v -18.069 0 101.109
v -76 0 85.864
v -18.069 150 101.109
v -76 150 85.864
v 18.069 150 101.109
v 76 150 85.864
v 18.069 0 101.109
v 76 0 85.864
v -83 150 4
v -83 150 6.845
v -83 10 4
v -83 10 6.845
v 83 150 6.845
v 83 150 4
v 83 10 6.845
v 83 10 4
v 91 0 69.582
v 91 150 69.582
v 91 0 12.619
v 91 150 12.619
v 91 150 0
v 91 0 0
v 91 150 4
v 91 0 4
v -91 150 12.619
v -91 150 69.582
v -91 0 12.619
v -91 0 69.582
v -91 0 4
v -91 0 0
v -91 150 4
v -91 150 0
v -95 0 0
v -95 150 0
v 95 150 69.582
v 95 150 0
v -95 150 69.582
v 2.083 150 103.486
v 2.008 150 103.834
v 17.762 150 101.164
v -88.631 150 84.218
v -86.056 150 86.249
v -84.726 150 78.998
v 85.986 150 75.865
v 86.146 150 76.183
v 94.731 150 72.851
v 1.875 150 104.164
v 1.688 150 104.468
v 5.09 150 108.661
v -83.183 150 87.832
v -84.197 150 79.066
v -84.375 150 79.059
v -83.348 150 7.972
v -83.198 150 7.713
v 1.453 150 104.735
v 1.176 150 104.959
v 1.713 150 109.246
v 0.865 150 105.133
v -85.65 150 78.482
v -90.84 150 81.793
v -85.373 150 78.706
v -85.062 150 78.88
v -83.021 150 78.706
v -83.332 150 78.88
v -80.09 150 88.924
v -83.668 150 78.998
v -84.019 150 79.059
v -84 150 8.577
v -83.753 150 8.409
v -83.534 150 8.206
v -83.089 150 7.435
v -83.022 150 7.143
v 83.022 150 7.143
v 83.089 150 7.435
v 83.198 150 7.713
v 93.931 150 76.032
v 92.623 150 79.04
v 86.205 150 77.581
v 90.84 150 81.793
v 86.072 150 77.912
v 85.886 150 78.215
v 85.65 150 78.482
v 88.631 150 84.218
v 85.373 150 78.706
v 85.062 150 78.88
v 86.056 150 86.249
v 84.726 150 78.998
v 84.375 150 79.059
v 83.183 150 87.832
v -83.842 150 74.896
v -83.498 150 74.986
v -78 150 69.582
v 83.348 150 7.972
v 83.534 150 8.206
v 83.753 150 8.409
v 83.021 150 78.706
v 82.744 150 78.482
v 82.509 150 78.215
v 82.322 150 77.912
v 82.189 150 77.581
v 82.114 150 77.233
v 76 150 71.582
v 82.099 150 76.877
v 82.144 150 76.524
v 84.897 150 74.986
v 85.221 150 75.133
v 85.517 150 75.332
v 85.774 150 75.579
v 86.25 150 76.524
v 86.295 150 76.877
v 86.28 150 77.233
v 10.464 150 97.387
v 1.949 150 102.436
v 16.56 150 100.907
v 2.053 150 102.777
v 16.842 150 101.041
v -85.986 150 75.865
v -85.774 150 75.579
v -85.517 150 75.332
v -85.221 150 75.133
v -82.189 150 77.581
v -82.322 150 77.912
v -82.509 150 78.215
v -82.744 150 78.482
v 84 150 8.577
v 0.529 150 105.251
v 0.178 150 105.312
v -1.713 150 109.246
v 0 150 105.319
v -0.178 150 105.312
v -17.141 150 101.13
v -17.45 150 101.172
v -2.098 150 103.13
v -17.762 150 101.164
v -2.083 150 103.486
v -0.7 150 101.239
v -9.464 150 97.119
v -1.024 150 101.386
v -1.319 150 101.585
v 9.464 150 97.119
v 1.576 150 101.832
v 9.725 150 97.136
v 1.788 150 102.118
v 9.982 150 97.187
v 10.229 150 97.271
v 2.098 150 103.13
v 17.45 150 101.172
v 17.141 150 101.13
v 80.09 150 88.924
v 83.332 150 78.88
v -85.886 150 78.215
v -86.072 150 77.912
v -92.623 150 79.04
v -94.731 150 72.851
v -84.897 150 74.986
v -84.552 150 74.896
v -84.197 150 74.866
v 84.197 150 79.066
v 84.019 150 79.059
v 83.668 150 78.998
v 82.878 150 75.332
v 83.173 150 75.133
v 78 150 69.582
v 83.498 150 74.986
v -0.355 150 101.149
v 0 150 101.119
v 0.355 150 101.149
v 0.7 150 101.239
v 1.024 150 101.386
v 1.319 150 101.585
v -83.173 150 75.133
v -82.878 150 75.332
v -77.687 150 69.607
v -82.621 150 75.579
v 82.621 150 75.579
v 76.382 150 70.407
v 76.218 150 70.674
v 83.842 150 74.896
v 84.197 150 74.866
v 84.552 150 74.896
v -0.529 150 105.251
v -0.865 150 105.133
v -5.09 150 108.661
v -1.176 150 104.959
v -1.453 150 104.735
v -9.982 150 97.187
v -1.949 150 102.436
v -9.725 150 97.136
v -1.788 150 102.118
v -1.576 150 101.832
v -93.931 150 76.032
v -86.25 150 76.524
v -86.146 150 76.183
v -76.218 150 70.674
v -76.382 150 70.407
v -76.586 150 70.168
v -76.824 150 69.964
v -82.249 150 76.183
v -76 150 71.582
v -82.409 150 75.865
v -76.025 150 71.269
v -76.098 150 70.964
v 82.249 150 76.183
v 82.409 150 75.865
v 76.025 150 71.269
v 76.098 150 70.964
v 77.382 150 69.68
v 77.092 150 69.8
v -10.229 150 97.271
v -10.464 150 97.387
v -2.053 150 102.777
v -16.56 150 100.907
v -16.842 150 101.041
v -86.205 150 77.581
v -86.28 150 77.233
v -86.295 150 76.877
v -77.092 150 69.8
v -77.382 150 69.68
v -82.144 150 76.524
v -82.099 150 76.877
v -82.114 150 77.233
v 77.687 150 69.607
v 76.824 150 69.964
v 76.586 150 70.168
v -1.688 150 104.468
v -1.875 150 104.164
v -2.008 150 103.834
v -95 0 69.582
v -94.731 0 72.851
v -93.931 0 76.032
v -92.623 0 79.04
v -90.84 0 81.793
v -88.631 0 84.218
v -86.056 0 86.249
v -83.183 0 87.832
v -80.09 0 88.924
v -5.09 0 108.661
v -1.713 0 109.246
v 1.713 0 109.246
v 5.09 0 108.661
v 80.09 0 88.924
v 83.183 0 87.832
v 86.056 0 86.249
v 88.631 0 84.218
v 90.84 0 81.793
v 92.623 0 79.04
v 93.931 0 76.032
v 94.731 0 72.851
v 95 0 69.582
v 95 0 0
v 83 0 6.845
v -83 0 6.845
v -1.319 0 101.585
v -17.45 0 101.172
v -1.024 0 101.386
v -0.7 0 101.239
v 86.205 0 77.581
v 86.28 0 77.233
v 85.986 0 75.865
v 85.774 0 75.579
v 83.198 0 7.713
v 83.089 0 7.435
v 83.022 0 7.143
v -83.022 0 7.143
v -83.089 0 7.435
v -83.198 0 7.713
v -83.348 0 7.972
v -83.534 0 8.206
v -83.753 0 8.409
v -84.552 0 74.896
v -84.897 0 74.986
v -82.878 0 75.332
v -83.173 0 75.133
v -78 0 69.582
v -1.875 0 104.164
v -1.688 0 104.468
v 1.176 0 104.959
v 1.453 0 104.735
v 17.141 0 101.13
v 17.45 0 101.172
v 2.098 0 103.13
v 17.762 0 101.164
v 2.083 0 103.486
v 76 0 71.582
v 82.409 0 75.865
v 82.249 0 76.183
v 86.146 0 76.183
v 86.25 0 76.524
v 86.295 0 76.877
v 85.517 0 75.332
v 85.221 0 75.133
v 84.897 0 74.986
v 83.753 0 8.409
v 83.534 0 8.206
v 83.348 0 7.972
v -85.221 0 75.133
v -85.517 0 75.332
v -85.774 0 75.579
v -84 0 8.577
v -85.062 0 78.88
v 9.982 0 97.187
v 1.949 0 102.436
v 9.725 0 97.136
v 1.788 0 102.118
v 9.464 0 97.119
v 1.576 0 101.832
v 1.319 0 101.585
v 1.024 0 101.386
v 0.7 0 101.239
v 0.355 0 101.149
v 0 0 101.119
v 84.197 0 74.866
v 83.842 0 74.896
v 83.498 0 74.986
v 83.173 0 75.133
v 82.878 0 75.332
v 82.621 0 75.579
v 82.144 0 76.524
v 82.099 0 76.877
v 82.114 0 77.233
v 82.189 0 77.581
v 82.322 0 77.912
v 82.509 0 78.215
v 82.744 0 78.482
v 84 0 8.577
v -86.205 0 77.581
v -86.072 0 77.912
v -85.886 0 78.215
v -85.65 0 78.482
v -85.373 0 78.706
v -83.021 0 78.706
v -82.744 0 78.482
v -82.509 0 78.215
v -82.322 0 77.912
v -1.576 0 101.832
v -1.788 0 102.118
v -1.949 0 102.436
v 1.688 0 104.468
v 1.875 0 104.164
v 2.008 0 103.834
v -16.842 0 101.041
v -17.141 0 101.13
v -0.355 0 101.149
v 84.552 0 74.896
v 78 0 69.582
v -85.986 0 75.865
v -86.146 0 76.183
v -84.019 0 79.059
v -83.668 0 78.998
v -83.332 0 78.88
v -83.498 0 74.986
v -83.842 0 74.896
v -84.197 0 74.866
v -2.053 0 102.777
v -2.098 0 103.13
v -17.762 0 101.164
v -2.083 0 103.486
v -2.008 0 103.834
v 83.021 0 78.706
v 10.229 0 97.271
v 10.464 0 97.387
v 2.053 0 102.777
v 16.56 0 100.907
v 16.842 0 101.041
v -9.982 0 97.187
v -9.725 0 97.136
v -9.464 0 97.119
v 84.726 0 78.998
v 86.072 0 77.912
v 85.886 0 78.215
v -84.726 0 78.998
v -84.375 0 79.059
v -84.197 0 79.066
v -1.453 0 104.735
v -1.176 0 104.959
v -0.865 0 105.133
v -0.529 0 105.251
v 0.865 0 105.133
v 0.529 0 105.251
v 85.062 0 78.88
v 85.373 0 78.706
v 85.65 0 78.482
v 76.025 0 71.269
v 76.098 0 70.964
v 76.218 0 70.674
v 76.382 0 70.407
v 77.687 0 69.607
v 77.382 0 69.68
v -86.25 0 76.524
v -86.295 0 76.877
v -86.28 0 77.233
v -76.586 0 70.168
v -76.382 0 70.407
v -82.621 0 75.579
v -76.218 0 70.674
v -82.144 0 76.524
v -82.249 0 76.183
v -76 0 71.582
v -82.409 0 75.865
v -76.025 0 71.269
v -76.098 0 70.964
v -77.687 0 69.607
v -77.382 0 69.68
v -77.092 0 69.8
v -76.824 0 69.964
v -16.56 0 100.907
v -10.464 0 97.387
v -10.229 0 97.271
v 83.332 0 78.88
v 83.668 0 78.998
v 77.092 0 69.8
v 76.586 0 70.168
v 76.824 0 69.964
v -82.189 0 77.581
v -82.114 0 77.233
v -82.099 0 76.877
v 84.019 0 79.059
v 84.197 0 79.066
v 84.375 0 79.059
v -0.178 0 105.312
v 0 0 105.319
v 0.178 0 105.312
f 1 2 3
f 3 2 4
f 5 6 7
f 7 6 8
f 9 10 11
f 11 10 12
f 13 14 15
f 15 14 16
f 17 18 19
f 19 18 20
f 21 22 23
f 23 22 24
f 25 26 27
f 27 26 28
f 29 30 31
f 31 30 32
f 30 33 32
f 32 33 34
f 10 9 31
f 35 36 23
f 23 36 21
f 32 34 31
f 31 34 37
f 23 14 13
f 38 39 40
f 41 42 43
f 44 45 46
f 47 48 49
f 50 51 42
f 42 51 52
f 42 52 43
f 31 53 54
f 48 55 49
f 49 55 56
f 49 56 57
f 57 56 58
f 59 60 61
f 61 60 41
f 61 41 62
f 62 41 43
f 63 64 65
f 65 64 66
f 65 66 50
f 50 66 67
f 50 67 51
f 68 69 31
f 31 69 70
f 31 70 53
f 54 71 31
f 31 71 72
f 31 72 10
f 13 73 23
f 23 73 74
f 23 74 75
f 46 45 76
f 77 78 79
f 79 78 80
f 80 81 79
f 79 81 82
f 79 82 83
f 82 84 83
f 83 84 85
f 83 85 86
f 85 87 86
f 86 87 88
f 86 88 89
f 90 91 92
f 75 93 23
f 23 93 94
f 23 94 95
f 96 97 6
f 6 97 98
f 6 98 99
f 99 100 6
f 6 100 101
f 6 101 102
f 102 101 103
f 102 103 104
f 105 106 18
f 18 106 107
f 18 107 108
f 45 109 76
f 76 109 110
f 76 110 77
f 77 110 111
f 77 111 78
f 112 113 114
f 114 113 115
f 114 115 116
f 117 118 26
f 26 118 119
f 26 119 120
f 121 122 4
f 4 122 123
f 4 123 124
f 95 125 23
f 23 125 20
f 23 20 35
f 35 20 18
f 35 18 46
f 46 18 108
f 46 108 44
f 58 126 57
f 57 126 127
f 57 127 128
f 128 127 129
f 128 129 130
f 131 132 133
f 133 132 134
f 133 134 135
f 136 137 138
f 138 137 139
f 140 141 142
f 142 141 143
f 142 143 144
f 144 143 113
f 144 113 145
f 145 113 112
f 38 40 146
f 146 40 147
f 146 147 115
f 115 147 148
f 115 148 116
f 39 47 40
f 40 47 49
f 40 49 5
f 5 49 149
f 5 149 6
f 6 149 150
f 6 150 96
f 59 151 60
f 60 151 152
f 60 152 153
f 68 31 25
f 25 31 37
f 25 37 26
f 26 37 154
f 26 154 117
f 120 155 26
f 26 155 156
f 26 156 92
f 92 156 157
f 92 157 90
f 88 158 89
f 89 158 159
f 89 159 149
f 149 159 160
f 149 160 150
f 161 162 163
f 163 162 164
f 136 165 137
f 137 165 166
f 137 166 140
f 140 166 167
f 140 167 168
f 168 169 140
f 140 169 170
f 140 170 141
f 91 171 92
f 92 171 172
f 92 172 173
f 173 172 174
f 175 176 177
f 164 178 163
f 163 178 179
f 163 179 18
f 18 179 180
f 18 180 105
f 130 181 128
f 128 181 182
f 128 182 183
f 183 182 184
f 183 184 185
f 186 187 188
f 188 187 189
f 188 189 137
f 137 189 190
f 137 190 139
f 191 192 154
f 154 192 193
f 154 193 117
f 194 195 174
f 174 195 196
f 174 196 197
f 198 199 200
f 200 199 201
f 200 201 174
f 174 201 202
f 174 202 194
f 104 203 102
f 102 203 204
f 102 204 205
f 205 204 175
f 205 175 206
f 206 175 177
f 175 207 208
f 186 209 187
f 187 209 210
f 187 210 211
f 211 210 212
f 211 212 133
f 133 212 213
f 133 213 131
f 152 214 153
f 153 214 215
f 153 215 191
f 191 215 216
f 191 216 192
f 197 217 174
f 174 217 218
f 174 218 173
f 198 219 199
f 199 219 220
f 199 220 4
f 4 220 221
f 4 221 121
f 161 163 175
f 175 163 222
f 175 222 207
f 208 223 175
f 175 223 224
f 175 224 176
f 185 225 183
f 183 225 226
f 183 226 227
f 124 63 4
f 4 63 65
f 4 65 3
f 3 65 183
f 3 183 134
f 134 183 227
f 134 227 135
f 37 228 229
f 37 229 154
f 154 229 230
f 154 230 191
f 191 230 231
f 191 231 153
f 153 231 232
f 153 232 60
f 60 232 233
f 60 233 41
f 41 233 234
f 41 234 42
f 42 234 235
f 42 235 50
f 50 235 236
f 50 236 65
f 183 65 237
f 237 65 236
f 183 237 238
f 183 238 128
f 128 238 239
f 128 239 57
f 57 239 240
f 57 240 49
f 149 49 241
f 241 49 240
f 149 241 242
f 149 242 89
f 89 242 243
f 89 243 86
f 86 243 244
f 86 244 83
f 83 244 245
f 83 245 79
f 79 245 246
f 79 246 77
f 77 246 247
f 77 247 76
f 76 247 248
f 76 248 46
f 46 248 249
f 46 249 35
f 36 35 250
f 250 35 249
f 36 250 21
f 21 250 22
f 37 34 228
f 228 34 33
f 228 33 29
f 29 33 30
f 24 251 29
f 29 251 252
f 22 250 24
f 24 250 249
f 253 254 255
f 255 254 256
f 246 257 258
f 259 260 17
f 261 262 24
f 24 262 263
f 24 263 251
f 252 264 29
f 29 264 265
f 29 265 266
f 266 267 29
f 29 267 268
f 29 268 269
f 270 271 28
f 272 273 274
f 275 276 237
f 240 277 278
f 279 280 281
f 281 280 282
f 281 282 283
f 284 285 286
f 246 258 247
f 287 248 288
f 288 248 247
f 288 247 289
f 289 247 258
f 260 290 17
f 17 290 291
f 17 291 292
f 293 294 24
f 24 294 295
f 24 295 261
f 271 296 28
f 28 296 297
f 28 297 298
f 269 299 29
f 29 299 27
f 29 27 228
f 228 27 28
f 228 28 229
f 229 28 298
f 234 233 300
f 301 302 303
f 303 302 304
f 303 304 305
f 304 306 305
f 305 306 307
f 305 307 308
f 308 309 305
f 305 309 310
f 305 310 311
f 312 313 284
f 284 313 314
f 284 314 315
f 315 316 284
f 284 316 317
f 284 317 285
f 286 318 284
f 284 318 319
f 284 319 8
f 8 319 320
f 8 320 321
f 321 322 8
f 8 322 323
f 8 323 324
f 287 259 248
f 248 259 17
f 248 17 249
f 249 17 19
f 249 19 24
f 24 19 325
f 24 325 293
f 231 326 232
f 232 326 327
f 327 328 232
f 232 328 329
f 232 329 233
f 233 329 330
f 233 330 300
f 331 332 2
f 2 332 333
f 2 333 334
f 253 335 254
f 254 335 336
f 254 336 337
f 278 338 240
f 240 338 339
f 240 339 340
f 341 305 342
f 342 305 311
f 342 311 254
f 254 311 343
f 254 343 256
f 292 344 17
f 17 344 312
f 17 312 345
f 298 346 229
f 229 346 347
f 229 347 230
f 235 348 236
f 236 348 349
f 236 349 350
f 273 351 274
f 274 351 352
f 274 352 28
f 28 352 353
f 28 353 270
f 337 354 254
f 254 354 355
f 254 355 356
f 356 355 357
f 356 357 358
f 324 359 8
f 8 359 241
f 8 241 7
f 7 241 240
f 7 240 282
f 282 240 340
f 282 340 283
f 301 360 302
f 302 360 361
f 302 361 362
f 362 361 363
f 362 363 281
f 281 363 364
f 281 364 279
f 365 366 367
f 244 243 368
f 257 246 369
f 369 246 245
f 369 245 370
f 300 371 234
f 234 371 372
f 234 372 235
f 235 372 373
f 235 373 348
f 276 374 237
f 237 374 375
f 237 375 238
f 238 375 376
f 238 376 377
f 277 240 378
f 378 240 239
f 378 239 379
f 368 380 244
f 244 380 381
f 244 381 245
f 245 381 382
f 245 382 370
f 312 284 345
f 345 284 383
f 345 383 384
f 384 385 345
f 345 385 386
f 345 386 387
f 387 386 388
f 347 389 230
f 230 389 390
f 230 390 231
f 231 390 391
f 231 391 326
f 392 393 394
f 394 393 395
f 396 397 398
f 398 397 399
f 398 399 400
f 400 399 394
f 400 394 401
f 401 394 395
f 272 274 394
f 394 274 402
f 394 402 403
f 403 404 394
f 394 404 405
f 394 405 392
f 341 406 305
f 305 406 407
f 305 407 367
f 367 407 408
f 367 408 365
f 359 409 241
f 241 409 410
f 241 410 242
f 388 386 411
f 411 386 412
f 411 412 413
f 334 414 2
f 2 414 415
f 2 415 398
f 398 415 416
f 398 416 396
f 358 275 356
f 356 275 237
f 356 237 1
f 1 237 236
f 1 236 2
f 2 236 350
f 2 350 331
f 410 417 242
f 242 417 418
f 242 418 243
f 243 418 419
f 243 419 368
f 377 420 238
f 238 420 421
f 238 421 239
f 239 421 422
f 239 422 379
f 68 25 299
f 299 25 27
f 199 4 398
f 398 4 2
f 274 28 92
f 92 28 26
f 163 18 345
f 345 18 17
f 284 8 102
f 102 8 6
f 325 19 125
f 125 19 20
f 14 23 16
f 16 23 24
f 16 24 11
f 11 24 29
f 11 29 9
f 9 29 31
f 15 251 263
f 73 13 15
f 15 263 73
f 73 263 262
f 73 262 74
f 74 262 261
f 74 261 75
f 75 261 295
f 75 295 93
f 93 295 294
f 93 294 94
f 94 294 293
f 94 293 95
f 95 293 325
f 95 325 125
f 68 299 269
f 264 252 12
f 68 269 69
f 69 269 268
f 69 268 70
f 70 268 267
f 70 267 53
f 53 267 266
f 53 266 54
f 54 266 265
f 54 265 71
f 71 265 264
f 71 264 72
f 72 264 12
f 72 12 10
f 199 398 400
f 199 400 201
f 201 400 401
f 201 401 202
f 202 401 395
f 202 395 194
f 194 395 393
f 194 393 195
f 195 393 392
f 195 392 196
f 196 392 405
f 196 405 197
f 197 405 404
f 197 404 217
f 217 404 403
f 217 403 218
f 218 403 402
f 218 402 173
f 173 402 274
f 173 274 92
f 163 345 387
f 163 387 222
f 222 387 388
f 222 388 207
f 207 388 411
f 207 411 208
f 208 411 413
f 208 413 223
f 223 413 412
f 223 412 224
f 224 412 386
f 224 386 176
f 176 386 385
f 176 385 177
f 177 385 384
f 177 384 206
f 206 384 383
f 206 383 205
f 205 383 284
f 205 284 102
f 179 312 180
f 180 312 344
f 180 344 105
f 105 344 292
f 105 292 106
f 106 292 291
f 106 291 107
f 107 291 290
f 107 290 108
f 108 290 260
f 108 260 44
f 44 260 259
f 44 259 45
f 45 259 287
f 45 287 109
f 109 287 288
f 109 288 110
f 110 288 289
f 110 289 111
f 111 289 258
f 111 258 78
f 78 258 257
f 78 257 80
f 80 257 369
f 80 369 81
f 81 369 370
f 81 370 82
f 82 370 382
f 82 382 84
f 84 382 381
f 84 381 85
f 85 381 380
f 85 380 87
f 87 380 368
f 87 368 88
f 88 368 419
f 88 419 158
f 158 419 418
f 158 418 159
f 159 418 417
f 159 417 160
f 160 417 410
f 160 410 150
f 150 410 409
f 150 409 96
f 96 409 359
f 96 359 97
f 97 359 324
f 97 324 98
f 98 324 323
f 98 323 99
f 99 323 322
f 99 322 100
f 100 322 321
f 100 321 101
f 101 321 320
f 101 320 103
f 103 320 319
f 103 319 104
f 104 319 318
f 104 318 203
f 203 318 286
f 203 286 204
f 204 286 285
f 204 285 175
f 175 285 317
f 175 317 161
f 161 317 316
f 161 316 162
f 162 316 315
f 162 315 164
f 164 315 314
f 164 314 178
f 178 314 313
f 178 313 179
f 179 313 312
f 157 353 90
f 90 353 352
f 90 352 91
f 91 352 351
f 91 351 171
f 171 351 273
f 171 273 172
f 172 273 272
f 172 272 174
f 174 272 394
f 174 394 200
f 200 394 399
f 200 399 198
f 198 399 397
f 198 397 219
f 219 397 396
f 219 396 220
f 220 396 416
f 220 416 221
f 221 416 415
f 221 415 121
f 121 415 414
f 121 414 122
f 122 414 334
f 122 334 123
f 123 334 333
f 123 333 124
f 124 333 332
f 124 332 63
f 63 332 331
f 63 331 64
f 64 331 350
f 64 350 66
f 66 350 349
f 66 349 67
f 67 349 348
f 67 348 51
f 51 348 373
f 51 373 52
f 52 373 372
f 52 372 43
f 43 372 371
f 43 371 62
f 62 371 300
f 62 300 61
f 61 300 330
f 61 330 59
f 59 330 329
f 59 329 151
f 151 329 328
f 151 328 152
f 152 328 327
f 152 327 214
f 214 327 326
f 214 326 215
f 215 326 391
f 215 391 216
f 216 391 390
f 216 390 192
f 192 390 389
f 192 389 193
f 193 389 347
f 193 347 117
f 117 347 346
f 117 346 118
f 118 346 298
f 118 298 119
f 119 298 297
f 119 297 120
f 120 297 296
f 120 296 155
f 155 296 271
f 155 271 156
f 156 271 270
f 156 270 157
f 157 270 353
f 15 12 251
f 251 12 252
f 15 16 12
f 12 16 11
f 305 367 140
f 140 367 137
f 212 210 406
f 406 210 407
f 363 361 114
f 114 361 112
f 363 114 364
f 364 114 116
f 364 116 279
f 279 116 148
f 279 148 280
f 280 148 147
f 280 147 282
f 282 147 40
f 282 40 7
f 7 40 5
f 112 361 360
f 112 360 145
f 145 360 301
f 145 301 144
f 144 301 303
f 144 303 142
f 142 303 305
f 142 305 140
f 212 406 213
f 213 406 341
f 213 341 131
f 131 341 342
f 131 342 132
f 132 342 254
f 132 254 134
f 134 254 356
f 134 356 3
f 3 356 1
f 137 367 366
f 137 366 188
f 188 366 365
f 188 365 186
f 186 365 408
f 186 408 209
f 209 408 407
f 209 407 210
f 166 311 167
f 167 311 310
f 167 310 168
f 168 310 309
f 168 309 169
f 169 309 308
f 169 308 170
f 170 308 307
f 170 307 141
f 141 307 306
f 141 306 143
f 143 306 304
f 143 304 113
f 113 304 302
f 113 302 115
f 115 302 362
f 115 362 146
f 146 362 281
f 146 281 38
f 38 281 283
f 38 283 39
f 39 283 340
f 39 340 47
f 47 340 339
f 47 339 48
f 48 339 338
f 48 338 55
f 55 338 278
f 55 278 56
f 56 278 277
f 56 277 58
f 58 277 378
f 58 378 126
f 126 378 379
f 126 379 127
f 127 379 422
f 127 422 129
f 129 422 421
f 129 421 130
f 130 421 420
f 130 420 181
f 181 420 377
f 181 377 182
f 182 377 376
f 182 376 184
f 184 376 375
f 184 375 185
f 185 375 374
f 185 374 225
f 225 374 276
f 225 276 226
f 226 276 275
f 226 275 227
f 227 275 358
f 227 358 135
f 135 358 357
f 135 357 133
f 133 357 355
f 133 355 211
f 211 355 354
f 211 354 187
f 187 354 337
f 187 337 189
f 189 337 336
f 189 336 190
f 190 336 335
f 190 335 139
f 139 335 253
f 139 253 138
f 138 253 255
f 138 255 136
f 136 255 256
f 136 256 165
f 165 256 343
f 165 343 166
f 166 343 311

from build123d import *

# Parameters (mm, degrees)
BOSS_EXTRUDE1_DEPTH = 150
SHELL2_T            = -4
BOSS_EXTRUDE2_DEPTH = 150
FILLET1_R           = 2
SKETCH4_R           = 2.1
CUT_EXTRUDE1_DEPTH  = 150
SKETCH5_W           = 166
SKETCH5_H           = 2.845299462
BOSS_EXTRUDE3_DEPTH = 10
BOSS_EXTRUDE6_DEPTH = 150
FILLET2_R           = 2
SKETCH7_R           = 2.1
CUT_EXTRUDE3_DEPTH  = 150


with BuildPart() as part:
    # Sketch1 → Boss-Extrude1 (new body)
    with BuildSketch(Plane(origin=(0, 0, 0), x_dir=(1, 0, 0), z_dir=(0, 1, 0))):
        with BuildLine():
            Line((95, 0), (95, -69.582228732))
            ThreePointArc((95, -69.582228732), (90.839780928, -81.792934696), (80.089865986, -88.923719477))
            Line((80.089865986, -88.923719477), (5.089865986, -108.660561583))
            ThreePointArc((5.089865986, -108.660561583), (0, -109.319070837), (-5.089865986, -108.660561583))
            Line((-5.089865986, -108.660561583), (-80.089865986, -88.923719477))
            ThreePointArc((-80.089865986, -88.923719477), (-90.839780928, -81.792934696), (-95, -69.582228732))
            Line((-95, -69.582228732), (-95, 0))
            Line((-95, 0), (95, 0))
        make_face()
    extrude(amount=BOSS_EXTRUDE1_DEPTH)

    # Shell2
    shell2_openings = [part.faces().sort_by_distance(p)[0] for p in [
        (0, 150, 48.84344893),
        (0, 75, 0),
        (0, 0, 48.84344893),
    ]]
    offset(amount=SHELL2_T, openings=shell2_openings, kind=Kind.INTERSECTION)

    # Sketch3 → Boss-Extrude2 (add)
    with BuildSketch(Plane(origin=(0, 0, 0), x_dir=(1, 0, 0), z_dir=(0, 1, 0))):
        Polygon((-91, -4), (-83, -4), (-83, -8), (-91, -12.618802154), align=None)
        Polygon((-91, -69.582228732), (-76, -69.582228732), (-76, -85.863814167), (-80.300337087, -88.867104329), (-90.839780928, -81.792934696), (-95, -69.582228732), align=None)
        Polygon((91, -69.582228732), (76, -69.582228732), (76, -85.863814167), (80.300337087, -88.867104329), (90.839780928, -81.792934696), (95, -69.582228732), align=None)
        Polygon((83, -8), (91, -12.618802154), (91, -4), (83, -4), align=None)
    extrude(amount=BOSS_EXTRUDE2_DEPTH)

    # Fillet1
    fillet1_edges = [part.edges().sort_by_distance(p)[0] for p in [
        (83, 75, 8),
        (76, 75, 69.582228732),
        (-76, 75, 69.582228732),
        (-83, 75, 8),
    ]]
    fillet(fillet1_edges, radius=FILLET1_R)

    # Sketch4 → Cut-Extrude1 (cut)
    with BuildSketch(Plane(origin=(0, 0, 0), x_dir=(1, 0, 0), z_dir=(0, 1, 0))):
        with Locations(Location((84.197294702, -76.966150565, 0), (0, 0, 270))):
            Circle(SKETCH4_R)
        with Locations(Location((-84.197294702, -76.966150565, 0), (0, 0, 270))):
            Circle(SKETCH4_R)
    extrude(amount=CUT_EXTRUDE1_DEPTH, mode=Mode.SUBTRACT)

    # Sketch5 → Boss-Extrude3 (add)
    with BuildSketch(Plane(origin=(0, 0, 0), x_dir=(1, 0, 0), z_dir=(0, 1, 0))):
        with Locations((0, -5.422649731)):
            Rectangle(SKETCH5_W, SKETCH5_H)
    extrude(amount=BOSS_EXTRUDE3_DEPTH)

    # Sketch6 → Boss-Extrude6 (add)
    with BuildSketch(Plane(origin=(0, 0, 0), x_dir=(1, 0, 0), z_dir=(0, 1, 0))):
        Polygon((10, -97.119070837), (17.273176686, -101.318241355), (0, -107.972122026), (-17.273176686, -101.318241355), (-10, -97.119070837), align=None)
    extrude(amount=BOSS_EXTRUDE6_DEPTH)

    # Fillet2
    fillet2_edges = [part.edges().sort_by_distance(p)[0] for p in [
        (10, 75, 97.119070837),
        (-10, 75, 97.119070837),
        (-17.273176686, 75, 101.318241355),
        (17.273176686, 75, 101.318241355),
    ]]
    fillet(fillet2_edges, radius=FILLET2_R)

    # Sketch7 → Cut-Extrude3 (cut)
    with BuildSketch(Plane(origin=(0, 0, 0), x_dir=(1, 0, 0), z_dir=(0, 1, 0))):
        with Locations(Location((0, -103.219070837, 0), (0, 0, 270))):
            Circle(SKETCH7_R)
    extrude(amount=CUT_EXTRUDE3_DEPTH, mode=Mode.SUBTRACT)


solid = part.part
